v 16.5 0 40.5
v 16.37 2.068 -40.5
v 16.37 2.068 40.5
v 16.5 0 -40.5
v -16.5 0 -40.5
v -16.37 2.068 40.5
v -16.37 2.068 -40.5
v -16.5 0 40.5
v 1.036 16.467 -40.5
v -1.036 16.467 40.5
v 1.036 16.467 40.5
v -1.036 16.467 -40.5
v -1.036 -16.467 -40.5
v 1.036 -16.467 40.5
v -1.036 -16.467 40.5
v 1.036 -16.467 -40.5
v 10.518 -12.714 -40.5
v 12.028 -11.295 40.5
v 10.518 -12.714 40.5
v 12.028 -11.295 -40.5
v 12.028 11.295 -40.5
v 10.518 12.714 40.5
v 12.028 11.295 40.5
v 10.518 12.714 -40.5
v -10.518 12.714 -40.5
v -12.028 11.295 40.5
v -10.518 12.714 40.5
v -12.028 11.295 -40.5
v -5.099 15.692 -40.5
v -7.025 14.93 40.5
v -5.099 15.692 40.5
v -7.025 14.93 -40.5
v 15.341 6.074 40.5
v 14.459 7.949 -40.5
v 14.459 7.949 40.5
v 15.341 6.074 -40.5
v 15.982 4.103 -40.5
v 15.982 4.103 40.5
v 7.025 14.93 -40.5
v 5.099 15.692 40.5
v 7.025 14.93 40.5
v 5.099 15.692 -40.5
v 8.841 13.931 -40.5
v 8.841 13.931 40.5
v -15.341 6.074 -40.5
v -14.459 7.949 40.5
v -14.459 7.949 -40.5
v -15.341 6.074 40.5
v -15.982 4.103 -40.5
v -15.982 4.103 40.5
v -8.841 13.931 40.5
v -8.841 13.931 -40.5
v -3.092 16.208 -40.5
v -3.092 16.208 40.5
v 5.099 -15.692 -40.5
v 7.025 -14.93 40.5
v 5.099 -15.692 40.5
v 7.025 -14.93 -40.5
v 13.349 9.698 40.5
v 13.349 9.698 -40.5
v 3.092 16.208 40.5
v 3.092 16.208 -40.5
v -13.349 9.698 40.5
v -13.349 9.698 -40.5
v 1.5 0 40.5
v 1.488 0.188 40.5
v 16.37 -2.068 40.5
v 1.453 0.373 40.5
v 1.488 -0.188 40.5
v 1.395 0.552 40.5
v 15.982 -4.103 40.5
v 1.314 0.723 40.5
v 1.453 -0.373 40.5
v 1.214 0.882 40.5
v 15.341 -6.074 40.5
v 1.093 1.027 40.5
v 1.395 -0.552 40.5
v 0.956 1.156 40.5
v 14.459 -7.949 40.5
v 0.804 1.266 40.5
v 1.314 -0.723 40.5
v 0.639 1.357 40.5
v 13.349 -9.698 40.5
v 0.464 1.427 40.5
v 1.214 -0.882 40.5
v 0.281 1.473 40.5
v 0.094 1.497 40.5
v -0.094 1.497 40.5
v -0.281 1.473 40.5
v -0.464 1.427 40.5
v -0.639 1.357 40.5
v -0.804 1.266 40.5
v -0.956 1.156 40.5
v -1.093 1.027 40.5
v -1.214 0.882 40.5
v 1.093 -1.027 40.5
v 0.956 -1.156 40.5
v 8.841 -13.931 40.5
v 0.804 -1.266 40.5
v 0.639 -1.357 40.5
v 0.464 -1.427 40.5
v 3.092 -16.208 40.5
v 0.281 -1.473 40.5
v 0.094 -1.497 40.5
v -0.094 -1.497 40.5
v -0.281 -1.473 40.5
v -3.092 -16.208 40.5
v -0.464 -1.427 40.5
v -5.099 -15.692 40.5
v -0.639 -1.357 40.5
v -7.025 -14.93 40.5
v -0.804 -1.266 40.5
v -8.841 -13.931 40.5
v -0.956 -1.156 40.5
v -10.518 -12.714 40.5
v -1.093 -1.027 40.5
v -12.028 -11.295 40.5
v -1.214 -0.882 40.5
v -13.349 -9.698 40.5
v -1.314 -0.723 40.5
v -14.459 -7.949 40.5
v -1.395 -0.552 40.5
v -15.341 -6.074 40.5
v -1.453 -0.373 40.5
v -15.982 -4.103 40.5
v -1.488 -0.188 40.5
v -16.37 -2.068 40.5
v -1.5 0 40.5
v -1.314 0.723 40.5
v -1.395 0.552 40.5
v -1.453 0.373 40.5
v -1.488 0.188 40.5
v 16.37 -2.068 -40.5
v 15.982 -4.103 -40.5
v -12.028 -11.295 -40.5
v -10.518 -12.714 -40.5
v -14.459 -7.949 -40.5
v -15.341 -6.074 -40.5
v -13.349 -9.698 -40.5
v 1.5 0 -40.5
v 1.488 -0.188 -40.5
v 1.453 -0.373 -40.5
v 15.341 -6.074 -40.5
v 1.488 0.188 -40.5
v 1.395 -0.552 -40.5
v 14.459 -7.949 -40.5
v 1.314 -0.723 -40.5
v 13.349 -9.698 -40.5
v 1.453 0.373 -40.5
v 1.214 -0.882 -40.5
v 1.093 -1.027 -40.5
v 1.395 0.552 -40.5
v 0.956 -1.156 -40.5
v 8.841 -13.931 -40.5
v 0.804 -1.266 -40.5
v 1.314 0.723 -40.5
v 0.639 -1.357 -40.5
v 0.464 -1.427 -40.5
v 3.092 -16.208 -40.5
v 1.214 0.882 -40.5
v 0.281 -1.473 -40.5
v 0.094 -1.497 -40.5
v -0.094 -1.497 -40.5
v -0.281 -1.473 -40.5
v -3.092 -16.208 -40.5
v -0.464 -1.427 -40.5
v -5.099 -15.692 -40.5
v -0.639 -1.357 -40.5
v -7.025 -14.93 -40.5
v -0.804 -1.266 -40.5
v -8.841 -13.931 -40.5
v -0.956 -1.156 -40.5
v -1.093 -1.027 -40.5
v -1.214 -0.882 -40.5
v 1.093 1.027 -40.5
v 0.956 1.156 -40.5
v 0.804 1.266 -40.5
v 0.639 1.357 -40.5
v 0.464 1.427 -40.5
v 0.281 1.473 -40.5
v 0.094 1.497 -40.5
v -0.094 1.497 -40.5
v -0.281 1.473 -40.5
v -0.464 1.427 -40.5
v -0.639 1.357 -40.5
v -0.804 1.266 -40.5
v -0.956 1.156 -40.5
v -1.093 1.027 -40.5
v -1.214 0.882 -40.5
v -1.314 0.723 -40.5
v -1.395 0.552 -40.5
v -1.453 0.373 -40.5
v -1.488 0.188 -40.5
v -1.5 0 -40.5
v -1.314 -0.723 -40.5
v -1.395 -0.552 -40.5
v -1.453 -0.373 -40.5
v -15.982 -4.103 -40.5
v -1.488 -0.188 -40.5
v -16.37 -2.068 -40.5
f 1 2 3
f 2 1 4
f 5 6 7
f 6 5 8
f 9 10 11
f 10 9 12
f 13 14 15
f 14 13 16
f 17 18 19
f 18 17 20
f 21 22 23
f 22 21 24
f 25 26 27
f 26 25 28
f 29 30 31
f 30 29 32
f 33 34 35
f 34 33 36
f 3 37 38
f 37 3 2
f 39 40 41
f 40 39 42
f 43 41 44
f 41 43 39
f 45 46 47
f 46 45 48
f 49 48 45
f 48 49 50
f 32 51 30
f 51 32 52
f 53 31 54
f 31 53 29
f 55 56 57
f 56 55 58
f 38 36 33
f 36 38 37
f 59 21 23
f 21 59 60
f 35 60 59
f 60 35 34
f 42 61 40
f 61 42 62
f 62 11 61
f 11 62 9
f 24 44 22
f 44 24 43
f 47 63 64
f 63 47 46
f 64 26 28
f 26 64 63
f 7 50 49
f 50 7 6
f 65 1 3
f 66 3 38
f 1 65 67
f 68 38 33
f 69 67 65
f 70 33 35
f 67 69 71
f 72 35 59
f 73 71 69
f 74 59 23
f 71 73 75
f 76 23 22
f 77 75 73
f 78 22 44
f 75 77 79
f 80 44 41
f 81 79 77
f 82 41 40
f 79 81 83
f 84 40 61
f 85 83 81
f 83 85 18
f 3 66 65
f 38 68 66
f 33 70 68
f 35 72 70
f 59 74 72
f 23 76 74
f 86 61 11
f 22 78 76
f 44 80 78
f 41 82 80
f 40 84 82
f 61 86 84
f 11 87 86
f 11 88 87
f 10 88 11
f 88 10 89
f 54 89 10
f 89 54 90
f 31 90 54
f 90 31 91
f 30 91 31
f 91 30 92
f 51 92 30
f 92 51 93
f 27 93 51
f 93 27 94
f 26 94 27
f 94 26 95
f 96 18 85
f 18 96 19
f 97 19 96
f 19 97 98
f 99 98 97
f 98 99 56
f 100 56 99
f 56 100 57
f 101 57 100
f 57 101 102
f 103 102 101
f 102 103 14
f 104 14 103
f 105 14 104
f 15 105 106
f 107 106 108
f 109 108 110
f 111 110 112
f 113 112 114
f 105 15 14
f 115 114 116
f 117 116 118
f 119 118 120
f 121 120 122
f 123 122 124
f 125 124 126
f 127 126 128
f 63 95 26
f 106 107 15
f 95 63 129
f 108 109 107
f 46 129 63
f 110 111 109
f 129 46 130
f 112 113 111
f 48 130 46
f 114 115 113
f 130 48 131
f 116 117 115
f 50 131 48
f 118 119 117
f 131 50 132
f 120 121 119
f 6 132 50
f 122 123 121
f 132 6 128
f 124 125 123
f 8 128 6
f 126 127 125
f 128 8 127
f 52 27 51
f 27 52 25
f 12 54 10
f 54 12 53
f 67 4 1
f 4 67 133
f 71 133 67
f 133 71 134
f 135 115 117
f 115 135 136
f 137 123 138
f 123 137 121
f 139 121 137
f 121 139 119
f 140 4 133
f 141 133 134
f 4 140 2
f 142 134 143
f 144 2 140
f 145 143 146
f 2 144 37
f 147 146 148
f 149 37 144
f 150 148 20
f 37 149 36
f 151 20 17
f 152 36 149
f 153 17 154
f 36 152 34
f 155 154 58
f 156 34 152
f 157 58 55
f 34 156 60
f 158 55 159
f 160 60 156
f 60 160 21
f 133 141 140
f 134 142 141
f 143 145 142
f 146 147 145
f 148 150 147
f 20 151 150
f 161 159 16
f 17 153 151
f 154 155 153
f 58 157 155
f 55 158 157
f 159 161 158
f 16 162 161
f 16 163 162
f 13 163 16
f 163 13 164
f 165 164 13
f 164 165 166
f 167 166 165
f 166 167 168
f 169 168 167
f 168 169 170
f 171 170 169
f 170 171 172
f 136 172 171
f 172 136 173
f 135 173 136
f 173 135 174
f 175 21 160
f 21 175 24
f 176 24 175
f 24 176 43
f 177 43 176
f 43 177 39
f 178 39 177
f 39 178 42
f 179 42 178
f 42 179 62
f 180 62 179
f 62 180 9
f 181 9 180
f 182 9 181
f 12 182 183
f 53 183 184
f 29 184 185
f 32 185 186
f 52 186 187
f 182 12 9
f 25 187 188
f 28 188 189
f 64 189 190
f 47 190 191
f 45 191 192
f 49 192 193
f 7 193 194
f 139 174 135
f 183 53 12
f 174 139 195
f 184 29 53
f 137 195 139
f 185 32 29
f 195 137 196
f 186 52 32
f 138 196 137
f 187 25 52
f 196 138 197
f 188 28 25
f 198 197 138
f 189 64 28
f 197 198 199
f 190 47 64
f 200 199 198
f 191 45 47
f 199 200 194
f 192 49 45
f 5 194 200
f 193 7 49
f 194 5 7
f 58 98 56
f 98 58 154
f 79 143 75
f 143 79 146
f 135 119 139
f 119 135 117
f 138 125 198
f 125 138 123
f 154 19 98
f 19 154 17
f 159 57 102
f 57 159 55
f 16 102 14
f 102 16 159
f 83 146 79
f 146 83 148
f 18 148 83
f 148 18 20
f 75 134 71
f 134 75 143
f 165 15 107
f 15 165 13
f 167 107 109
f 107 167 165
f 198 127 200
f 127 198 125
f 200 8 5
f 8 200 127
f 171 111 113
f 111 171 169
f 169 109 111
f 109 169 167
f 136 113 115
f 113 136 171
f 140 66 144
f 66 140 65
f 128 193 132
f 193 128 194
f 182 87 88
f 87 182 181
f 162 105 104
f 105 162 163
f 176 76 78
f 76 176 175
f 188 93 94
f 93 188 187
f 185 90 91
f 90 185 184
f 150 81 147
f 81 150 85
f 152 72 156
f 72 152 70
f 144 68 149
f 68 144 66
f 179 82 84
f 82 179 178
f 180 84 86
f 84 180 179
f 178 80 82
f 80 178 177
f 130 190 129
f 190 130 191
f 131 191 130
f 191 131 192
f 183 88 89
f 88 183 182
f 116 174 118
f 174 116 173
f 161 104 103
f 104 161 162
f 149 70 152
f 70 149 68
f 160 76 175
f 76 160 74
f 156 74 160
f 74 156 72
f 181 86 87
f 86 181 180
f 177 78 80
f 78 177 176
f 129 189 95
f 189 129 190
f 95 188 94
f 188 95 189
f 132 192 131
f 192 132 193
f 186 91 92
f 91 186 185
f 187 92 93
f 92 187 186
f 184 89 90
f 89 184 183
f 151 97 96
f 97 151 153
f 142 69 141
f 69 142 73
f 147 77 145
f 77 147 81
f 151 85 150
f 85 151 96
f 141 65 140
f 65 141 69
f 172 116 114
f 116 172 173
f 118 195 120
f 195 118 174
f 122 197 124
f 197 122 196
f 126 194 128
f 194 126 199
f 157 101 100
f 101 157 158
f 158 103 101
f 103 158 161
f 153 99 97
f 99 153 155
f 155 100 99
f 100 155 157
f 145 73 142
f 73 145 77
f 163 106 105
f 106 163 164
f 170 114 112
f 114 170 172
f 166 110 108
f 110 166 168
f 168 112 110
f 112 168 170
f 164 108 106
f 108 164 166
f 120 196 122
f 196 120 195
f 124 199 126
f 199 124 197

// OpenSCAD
$fn = 50;


difference() {
	union() {
		translate(v = [0, 0, -40.5000000000]) {
			cylinder(h = 81, r = 16.5000000000);
		}
	}
	union() {
		translate(v = [0, 0, -100.0000000000]) {
			cylinder(h = 200, r = 1.5000000000);
		}
	}
}
